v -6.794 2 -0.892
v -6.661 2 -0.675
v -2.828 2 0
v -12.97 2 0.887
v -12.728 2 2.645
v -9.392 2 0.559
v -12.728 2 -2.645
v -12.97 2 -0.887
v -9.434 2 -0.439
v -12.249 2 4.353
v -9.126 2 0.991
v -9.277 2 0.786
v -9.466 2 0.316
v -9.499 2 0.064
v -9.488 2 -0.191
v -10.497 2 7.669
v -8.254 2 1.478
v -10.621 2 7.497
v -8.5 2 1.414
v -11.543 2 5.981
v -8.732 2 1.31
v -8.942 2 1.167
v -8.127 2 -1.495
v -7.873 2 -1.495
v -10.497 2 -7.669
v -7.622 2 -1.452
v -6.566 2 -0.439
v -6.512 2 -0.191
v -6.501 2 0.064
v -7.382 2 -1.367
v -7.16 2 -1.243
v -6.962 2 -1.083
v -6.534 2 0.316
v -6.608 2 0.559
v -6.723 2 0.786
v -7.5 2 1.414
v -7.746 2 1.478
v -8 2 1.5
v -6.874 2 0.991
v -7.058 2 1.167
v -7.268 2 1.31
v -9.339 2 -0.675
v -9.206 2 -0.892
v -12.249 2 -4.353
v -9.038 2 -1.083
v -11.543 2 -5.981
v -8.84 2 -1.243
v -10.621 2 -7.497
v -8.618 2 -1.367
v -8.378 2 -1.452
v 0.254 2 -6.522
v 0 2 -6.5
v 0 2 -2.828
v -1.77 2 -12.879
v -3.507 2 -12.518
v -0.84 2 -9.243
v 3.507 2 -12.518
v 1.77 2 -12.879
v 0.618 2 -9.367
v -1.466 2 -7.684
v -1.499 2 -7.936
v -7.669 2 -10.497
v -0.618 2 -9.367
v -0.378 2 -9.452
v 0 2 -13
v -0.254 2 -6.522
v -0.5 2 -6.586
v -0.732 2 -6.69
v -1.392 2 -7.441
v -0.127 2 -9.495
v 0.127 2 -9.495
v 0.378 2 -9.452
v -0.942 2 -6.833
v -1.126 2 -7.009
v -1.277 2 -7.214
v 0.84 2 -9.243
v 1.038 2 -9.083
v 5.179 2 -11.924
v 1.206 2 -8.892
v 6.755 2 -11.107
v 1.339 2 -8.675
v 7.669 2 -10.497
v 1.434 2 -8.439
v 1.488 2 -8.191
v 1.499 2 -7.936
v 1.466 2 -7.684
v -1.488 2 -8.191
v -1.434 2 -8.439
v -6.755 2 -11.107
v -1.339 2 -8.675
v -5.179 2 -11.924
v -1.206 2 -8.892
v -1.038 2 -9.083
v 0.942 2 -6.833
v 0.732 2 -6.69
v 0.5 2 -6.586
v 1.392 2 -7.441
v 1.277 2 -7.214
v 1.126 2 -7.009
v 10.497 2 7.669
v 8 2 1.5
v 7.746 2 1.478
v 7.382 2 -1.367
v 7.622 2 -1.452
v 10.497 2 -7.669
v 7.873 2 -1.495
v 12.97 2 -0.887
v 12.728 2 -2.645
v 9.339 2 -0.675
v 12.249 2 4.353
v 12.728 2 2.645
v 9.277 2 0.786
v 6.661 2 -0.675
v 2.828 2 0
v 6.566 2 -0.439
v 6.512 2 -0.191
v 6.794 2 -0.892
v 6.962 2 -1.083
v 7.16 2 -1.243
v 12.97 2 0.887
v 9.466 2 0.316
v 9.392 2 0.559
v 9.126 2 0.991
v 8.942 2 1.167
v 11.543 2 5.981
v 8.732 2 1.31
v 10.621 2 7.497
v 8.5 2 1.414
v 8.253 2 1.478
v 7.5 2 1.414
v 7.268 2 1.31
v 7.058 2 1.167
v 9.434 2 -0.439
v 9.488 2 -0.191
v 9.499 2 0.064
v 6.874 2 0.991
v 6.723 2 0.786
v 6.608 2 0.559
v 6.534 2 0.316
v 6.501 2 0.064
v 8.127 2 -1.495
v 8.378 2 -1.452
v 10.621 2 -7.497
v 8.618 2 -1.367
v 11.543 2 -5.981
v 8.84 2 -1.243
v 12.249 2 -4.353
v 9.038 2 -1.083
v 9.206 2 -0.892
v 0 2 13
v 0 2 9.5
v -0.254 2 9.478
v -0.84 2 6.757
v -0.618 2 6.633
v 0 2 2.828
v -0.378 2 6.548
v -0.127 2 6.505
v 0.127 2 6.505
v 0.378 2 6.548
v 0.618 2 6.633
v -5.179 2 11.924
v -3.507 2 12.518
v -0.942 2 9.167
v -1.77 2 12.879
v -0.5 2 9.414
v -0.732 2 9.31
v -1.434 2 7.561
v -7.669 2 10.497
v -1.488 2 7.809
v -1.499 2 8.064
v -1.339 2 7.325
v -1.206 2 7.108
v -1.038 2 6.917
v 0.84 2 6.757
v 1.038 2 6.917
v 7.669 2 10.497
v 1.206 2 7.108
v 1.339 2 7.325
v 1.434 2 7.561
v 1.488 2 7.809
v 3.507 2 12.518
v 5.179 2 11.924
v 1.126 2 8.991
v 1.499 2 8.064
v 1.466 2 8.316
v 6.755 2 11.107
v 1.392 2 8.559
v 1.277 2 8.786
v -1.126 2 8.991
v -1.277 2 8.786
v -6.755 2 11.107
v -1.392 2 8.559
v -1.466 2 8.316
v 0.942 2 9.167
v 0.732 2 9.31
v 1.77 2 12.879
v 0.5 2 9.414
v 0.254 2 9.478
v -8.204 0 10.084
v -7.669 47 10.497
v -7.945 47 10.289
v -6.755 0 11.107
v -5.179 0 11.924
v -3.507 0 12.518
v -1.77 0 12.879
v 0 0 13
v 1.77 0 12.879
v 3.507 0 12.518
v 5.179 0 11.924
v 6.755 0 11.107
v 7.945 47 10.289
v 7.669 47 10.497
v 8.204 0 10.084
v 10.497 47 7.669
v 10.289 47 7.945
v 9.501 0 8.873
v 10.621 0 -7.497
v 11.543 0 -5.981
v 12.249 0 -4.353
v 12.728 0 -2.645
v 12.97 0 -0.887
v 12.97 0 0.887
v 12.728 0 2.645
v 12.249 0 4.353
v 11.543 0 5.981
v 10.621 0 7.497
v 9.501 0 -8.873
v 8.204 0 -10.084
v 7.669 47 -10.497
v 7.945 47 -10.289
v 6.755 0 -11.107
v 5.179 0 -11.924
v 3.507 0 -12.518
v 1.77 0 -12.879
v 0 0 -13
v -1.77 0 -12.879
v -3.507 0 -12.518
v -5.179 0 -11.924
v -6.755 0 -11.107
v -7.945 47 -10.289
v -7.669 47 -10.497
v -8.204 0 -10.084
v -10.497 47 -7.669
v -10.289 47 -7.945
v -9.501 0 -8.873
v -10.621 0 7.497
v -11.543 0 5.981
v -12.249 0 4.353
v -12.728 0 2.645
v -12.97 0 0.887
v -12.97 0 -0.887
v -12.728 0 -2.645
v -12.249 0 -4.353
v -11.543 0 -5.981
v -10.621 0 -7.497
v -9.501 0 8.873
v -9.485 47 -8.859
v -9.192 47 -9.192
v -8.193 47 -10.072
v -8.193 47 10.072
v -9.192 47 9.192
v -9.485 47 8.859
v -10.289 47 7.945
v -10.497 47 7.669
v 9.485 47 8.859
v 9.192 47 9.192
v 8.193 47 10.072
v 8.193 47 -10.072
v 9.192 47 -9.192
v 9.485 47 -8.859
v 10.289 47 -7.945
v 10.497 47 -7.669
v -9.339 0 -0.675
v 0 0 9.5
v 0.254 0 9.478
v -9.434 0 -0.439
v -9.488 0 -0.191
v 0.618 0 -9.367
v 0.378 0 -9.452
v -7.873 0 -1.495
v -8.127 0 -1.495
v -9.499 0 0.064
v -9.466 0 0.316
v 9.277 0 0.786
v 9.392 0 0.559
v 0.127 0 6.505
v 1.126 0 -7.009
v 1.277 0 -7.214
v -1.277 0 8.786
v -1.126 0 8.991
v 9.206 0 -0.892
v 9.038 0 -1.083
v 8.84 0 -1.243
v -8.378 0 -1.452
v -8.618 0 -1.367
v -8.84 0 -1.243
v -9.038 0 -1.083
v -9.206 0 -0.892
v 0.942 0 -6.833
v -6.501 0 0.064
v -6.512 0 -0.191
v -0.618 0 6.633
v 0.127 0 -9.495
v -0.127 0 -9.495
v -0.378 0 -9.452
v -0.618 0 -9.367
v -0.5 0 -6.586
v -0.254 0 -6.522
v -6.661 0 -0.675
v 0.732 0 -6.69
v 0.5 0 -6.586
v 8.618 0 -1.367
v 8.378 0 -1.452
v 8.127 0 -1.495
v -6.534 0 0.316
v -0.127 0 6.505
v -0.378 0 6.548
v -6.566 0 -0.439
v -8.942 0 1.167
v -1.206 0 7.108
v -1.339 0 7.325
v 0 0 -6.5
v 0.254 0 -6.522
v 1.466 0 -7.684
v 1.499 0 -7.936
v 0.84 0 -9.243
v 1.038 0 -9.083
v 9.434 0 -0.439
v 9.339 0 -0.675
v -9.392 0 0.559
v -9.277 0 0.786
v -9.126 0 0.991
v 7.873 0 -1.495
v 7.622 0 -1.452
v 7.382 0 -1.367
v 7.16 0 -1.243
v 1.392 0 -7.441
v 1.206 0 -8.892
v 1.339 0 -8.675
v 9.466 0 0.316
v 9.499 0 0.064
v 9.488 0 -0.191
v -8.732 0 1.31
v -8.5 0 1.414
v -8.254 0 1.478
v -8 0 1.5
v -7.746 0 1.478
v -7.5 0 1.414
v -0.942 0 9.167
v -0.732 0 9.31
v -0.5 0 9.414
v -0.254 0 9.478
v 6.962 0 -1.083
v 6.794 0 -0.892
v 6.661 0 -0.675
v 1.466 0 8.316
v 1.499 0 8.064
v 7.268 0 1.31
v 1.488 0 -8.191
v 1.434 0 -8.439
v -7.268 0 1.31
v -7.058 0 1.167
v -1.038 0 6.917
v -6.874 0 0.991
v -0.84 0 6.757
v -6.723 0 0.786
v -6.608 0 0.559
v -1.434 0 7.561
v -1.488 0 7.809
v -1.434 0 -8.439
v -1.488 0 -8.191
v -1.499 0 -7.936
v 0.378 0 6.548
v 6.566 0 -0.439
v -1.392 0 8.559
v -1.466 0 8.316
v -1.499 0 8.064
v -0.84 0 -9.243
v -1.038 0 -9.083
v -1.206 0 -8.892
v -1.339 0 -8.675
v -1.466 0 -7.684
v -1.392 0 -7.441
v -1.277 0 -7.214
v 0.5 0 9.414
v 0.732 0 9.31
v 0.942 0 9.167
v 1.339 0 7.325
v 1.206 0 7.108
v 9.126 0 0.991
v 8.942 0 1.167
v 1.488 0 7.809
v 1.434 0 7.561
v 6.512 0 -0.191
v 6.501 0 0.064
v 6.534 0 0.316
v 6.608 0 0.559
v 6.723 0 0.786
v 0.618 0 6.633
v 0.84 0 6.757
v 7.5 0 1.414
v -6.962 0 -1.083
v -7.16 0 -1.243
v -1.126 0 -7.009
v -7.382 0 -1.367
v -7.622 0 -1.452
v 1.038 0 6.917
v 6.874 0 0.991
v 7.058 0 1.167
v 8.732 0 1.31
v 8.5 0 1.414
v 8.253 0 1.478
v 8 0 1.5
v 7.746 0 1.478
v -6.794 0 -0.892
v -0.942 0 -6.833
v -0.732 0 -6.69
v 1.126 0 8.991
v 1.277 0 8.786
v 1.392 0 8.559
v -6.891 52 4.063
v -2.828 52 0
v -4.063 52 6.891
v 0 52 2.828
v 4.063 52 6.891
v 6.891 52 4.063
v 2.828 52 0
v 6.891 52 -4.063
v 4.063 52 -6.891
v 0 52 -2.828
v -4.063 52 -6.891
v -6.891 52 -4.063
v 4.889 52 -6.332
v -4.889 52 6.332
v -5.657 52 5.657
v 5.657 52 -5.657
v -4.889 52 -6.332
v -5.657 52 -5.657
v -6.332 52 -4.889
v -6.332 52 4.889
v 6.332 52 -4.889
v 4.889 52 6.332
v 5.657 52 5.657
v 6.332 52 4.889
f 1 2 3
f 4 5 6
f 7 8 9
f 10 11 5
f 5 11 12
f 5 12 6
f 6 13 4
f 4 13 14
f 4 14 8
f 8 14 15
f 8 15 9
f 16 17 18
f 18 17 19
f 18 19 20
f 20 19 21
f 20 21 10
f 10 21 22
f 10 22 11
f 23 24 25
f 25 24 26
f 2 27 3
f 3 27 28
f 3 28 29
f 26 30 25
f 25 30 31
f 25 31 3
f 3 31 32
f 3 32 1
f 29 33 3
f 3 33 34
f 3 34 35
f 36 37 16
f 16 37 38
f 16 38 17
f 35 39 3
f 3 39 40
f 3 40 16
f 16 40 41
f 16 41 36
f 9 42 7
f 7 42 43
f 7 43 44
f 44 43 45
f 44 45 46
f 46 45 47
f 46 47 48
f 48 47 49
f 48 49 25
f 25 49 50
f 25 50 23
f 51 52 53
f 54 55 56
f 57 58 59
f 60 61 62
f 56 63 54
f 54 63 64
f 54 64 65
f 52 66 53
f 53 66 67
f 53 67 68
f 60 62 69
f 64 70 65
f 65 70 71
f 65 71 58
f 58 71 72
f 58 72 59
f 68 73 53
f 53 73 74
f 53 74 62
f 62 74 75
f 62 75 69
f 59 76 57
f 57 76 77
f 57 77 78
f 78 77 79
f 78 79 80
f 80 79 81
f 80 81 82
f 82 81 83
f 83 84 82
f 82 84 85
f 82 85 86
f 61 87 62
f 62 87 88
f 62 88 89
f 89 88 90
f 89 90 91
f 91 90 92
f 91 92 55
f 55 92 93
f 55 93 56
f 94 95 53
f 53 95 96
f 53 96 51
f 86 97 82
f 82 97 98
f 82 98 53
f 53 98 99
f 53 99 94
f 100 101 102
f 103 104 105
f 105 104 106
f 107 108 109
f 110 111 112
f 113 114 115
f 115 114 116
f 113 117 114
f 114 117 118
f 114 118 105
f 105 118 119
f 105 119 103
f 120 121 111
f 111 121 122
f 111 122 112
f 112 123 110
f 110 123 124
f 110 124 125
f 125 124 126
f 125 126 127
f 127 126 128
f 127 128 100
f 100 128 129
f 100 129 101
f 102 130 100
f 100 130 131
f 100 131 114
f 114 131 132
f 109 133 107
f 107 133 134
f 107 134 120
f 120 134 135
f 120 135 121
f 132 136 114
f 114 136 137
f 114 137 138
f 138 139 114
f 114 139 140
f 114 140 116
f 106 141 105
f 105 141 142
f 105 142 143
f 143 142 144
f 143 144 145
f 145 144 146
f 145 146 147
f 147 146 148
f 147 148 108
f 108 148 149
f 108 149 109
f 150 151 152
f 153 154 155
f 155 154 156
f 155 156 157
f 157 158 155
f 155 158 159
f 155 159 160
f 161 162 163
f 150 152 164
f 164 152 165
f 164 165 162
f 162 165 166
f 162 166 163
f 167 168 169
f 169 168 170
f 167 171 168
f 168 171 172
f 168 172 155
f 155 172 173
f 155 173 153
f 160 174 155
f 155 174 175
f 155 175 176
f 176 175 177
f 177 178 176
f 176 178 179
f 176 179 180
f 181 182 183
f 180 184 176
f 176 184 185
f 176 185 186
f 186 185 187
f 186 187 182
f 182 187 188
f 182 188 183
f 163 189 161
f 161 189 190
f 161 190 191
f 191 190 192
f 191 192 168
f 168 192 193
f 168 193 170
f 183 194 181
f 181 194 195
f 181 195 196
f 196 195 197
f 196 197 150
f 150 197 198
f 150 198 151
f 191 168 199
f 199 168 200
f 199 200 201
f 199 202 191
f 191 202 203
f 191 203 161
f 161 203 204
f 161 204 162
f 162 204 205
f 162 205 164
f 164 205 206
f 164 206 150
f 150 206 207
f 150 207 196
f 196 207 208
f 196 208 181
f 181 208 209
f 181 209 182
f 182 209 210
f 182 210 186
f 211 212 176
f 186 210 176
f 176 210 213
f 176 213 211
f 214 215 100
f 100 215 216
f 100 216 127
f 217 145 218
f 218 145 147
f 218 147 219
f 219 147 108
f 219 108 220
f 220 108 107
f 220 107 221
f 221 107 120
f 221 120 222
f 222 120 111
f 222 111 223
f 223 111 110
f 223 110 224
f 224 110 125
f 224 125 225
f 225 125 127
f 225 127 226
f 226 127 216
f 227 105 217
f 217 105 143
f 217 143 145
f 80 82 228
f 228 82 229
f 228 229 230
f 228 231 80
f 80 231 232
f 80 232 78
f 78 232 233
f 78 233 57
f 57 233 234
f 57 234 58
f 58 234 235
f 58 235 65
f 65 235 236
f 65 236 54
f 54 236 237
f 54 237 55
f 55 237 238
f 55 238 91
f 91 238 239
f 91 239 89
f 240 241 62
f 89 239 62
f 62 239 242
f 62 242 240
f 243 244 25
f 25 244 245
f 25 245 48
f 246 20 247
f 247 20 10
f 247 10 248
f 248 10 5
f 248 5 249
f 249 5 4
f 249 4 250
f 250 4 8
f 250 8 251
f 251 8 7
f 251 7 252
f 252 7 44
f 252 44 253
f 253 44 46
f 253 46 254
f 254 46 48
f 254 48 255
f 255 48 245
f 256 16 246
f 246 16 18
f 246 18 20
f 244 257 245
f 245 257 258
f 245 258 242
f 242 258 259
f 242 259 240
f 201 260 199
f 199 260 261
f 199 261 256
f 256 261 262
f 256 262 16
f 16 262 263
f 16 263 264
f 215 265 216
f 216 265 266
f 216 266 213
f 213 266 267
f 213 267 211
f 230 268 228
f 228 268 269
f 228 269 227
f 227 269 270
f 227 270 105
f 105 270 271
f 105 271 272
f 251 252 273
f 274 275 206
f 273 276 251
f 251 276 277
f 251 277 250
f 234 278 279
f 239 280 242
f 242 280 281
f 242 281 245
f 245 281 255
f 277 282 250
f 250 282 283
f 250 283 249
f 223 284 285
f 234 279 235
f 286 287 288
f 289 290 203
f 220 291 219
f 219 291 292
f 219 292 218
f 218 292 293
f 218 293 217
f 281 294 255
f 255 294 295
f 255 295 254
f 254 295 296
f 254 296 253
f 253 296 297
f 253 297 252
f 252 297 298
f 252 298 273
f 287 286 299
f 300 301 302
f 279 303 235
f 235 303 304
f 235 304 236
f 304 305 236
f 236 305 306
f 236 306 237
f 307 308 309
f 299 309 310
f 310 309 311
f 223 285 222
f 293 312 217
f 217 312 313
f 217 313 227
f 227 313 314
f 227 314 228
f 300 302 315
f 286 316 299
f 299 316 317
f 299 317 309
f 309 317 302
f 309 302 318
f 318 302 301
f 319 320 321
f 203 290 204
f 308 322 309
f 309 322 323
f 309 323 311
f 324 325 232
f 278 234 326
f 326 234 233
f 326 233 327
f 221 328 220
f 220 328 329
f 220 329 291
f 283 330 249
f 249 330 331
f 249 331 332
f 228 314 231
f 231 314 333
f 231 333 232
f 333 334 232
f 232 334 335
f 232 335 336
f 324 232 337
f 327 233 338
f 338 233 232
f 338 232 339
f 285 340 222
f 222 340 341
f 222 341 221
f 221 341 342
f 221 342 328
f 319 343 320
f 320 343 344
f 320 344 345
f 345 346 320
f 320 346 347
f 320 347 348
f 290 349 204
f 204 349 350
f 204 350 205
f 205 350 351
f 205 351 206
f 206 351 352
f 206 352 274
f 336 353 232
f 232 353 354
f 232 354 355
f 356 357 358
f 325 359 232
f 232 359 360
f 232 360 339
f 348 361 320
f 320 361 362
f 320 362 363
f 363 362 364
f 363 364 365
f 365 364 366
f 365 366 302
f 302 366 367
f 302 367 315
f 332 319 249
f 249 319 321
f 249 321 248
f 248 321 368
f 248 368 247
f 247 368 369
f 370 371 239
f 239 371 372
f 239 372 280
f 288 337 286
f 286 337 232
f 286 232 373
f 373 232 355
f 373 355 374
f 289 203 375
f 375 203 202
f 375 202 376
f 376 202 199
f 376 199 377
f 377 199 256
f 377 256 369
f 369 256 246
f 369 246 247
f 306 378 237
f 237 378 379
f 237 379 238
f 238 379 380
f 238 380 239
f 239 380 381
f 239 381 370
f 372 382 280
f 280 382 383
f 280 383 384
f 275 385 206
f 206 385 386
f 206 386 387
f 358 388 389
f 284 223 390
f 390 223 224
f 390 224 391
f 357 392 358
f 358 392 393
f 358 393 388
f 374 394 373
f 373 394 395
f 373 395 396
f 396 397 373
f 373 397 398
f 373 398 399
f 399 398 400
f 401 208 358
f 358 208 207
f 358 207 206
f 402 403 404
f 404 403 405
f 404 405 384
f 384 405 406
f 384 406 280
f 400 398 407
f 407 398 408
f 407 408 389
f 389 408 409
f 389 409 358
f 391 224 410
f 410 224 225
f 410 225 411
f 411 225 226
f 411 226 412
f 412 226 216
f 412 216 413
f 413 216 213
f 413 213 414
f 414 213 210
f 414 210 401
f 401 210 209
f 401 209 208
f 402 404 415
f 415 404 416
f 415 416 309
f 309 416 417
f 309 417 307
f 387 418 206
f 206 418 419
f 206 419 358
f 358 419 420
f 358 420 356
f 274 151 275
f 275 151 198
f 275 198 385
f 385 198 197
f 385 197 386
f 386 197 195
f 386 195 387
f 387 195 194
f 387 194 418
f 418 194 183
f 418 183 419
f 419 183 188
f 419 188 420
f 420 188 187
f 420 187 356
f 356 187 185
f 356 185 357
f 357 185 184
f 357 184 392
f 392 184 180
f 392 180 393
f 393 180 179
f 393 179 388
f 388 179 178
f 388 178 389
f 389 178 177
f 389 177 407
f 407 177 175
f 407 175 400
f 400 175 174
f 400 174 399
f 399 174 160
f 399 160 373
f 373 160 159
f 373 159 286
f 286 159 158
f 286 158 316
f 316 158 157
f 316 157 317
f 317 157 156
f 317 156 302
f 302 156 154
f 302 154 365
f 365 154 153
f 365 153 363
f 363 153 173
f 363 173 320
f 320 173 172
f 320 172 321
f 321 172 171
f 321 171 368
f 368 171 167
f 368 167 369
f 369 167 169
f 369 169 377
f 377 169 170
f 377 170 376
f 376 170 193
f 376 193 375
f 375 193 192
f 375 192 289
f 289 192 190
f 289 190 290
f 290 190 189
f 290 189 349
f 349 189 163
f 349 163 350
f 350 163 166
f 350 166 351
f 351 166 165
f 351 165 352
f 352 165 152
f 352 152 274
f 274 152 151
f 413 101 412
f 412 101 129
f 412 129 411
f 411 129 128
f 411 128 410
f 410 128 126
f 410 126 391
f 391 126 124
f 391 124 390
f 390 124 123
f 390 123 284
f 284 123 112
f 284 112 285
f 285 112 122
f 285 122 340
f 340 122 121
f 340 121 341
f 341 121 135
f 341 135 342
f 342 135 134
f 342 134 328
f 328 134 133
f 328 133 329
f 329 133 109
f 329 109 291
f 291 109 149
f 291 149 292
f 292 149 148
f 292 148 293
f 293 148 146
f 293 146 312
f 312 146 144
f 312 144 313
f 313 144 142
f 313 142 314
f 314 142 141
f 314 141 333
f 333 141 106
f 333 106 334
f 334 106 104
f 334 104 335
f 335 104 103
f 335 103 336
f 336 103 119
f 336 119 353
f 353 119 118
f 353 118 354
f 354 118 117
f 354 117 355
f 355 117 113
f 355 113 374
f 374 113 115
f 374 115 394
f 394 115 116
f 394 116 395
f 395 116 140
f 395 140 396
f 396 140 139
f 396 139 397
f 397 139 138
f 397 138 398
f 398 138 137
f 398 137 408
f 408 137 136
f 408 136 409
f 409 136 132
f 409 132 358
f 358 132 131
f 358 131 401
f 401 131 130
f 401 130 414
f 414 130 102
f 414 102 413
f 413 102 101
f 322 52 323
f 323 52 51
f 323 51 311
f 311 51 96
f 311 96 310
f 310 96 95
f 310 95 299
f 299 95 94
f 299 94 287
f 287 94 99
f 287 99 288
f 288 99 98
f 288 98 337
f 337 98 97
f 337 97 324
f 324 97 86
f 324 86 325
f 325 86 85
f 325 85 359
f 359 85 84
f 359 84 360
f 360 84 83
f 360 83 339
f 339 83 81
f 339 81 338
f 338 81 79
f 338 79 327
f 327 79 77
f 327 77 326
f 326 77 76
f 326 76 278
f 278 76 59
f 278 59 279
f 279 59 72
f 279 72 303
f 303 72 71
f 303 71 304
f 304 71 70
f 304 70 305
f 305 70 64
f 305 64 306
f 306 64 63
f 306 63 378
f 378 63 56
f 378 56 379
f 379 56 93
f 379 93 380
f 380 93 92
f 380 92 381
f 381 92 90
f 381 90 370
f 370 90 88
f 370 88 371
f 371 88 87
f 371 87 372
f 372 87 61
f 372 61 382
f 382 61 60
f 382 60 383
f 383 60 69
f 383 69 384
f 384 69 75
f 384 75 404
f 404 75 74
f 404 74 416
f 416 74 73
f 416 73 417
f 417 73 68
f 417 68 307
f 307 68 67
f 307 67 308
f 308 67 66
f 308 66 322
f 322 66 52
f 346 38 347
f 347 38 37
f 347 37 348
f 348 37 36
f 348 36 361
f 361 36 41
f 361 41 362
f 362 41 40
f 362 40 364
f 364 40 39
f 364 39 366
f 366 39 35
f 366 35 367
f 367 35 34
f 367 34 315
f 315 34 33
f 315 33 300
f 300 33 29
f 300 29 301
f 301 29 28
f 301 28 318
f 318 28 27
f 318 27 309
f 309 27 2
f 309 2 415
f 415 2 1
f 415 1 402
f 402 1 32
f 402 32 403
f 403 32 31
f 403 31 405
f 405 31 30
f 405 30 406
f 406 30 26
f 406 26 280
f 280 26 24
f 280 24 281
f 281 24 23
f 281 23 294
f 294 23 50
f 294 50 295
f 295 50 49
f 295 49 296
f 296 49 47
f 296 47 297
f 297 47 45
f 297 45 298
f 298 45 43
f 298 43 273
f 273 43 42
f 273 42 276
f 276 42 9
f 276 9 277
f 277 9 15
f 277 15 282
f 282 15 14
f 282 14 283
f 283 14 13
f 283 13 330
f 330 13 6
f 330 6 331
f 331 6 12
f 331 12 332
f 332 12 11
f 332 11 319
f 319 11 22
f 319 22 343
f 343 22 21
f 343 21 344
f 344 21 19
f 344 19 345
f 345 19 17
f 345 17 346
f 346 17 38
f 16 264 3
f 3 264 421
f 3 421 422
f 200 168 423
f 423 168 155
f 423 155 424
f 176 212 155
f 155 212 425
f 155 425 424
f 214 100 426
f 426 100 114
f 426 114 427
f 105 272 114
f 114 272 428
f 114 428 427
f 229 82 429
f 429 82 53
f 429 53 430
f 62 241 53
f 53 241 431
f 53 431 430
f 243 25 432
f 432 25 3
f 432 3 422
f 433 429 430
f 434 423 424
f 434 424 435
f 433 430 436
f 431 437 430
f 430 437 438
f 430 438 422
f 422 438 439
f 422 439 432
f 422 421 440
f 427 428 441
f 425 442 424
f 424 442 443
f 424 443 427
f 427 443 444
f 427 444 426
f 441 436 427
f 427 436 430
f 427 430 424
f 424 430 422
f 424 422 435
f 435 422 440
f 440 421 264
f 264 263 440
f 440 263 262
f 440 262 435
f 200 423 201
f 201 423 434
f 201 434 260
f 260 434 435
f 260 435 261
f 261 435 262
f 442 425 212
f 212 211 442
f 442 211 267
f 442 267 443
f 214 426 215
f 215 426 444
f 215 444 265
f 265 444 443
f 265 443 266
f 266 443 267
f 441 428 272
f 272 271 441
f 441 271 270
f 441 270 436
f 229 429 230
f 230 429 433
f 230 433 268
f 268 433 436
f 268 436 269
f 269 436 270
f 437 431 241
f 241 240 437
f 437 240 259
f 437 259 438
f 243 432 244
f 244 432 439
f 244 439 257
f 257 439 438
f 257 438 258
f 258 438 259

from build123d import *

# Parameters (mm, degrees)
SKETCH1_R           = 13
BOSS_EXTRUDE1_DEPTH = 2
SKETCH2_R           = 1.5
CUT_EXTRUDE1_DEPTH  = 19.493242009
BOSS_EXTRUDE2_DEPTH = 50
CHAMFER1_SIZE       = 5


with BuildPart() as part:
    # Sketch1 → Boss-Extrude1 (new body)
    with BuildSketch(Plane(origin=(0, 0, 0), x_dir=(1, 0, 0), z_dir=(0, 1, 0))):
        with Locations(Location((0, 0, 0), (0, 0, 270))):
            Circle(SKETCH1_R)
    extrude(amount=BOSS_EXTRUDE1_DEPTH)

    # Sketch2 → Cut-Extrude1 (cut, through all)
    with BuildSketch(Plane(origin=(0, 2, 0), x_dir=(1, 0, 0), z_dir=(0, 1, 0))):
        with Locations(Location((-8, 0, 0), (0, 0, 270))):
            Circle(SKETCH2_R)
        with Locations(Location((0, 8, 0), (0, 0, 270))):
            Circle(SKETCH2_R)
        with Locations(Location((8, 0, 0), (0, 0, 270))):
            Circle(SKETCH2_R)
        with Locations(Location((0, -8, 0), (0, 0, 270))):
            Circle(SKETCH2_R)
    extrude(amount=-CUT_EXTRUDE1_DEPTH, mode=Mode.SUBTRACT)

    # Sketch3 → Boss-Extrude2 (add)
    with BuildSketch(Plane(origin=(0, 2, 0), x_dir=(1, 0, 0), z_dir=(0, 1, 0))):
        with BuildLine():
            ThreePointArc((-7.6687375, 10.497164625), (-9.192388155, 9.192388155), (-10.497164625, 7.6687375))
            Line((-10.497164625, 7.6687375), (-2.828427125, 0))
            Line((-2.828427125, 0), (-10.497164625, -7.6687375))
            ThreePointArc((-10.497164625, -7.6687375), (-9.192388155, -9.192388155), (-7.6687375, -10.497164625))
            Line((-7.6687375, -10.497164625), (0, -2.828427125))
            Line((0, -2.828427125), (7.6687375, -10.497164625))
            ThreePointArc((7.6687375, -10.497164625), (9.192388155, -9.192388155), (10.497164625, -7.6687375))
            Line((10.497164625, -7.6687375), (2.828427125, 0))
            Line((2.828427125, 0), (10.497164625, 7.6687375))
            ThreePointArc((10.497164625, 7.6687375), (9.192388155, 9.192388155), (7.6687375, 10.497164625))
            Line((7.6687375, 10.497164625), (0, 2.828427125))
            Line((0, 2.828427125), (-7.6687375, 10.497164625))
        make_face()
    extrude(amount=BOSS_EXTRUDE2_DEPTH)

    # Chamfer1
    chamfer1_edges = [part.edges().sort_by_distance(p)[0] for p in [
        (-9.192388155, 52, 9.192388155),
        (9.192388155, 52, 9.192388155),
        (9.192388155, 52, -9.192388155),
        (-9.192388155, 52, -9.192388155),
    ]]
    chamfer(chamfer1_edges, length=CHAMFER1_SIZE)


solid = part.part
